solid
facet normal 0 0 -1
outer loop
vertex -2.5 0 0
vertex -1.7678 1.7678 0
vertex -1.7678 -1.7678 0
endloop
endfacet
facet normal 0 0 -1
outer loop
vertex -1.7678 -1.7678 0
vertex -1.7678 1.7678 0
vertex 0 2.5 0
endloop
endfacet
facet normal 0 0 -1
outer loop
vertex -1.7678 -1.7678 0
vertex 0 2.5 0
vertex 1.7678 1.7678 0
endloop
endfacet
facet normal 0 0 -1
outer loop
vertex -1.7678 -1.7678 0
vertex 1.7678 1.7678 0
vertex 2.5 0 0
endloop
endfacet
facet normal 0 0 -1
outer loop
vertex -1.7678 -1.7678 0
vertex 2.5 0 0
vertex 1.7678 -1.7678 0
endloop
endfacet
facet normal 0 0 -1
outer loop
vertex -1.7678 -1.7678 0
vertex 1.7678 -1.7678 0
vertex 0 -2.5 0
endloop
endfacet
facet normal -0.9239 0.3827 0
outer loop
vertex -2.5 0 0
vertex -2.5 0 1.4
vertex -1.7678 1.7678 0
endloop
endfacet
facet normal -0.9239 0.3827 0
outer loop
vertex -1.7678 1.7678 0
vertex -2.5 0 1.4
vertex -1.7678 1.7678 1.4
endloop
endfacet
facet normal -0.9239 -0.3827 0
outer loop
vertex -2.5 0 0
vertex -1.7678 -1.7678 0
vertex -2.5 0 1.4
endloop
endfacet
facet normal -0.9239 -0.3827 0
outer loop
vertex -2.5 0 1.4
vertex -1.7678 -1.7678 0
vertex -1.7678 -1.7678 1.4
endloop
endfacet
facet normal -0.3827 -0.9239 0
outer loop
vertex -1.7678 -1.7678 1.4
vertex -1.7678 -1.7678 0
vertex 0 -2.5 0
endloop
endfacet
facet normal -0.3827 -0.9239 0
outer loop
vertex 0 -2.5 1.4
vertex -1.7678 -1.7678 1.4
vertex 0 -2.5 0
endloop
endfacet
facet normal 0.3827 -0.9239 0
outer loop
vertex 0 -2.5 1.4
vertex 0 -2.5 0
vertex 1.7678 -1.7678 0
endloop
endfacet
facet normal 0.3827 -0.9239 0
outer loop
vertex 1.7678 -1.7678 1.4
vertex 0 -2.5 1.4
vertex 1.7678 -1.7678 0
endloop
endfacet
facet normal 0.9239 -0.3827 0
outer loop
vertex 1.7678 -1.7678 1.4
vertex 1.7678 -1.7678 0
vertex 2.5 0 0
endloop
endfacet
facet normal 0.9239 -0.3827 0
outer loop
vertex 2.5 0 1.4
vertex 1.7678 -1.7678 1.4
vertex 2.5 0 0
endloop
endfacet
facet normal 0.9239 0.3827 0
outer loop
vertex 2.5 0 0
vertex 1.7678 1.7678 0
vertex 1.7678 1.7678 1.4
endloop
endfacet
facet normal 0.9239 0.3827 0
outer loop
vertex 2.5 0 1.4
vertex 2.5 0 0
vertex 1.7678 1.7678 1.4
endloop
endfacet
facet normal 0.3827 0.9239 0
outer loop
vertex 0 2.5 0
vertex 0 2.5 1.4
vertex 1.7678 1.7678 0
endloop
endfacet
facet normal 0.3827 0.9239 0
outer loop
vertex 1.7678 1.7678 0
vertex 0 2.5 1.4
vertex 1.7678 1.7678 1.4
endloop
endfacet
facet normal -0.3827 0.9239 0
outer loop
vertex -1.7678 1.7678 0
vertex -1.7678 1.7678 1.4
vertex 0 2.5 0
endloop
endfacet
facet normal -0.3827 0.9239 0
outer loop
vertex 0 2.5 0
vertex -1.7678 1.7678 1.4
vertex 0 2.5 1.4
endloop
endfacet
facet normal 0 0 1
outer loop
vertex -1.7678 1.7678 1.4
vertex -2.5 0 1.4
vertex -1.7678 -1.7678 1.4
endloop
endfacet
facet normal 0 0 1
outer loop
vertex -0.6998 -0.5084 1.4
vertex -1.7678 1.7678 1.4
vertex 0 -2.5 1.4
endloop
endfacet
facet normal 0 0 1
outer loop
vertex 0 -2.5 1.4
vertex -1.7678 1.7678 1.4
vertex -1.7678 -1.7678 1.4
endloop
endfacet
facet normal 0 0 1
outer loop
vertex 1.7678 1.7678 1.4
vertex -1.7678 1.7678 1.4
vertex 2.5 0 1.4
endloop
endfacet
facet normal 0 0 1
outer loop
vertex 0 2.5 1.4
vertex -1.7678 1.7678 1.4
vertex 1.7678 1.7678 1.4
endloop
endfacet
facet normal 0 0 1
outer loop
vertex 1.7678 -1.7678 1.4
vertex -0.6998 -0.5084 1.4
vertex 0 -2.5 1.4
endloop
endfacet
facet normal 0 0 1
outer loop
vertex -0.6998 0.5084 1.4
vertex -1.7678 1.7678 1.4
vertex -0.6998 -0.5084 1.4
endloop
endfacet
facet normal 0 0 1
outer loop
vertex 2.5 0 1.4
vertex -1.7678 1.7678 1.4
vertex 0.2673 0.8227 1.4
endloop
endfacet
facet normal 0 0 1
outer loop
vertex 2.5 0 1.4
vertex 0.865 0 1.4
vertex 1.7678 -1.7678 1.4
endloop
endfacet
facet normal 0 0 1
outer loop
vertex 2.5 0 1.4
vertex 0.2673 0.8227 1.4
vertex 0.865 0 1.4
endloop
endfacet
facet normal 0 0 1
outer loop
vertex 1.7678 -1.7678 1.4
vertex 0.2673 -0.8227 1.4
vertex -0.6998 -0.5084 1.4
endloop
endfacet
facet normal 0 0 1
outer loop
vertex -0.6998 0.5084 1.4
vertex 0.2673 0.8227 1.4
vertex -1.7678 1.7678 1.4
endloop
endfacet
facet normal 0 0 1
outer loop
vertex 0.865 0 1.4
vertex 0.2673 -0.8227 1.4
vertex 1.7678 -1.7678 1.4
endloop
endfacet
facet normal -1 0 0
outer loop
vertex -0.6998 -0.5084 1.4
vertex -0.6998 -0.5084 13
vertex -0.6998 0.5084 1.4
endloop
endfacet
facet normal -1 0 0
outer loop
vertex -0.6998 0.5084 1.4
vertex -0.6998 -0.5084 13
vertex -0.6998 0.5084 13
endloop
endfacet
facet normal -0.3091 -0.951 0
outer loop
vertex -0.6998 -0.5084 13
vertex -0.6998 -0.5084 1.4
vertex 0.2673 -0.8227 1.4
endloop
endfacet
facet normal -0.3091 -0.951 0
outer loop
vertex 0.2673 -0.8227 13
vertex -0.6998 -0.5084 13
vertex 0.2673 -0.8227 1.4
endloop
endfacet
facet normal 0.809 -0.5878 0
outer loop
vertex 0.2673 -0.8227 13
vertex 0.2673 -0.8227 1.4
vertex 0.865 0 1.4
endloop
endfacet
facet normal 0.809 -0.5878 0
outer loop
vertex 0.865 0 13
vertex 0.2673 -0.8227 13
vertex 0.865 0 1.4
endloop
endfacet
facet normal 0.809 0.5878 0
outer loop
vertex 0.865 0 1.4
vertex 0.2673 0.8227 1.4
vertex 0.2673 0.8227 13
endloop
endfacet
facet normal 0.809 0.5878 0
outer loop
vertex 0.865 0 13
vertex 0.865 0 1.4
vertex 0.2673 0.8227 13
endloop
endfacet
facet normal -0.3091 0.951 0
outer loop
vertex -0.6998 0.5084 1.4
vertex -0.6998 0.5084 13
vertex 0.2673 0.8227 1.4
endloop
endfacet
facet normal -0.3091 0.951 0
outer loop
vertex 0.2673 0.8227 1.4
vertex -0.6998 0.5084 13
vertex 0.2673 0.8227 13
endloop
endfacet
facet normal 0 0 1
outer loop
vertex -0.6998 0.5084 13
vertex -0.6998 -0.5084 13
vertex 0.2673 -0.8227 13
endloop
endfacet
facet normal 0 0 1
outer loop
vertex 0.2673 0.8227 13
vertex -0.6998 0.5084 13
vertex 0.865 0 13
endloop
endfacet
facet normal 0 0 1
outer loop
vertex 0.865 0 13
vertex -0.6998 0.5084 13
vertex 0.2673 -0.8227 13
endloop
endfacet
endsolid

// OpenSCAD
module bolt(top = 5, topheight = 1.4, body = 1.73, wholeheight = 13)
	union()
	{
		cylinder(topheight, top/2, top/2, 0);
		cylinder(wholeheight, body/2, body/2, 0);
	}

bolt();
